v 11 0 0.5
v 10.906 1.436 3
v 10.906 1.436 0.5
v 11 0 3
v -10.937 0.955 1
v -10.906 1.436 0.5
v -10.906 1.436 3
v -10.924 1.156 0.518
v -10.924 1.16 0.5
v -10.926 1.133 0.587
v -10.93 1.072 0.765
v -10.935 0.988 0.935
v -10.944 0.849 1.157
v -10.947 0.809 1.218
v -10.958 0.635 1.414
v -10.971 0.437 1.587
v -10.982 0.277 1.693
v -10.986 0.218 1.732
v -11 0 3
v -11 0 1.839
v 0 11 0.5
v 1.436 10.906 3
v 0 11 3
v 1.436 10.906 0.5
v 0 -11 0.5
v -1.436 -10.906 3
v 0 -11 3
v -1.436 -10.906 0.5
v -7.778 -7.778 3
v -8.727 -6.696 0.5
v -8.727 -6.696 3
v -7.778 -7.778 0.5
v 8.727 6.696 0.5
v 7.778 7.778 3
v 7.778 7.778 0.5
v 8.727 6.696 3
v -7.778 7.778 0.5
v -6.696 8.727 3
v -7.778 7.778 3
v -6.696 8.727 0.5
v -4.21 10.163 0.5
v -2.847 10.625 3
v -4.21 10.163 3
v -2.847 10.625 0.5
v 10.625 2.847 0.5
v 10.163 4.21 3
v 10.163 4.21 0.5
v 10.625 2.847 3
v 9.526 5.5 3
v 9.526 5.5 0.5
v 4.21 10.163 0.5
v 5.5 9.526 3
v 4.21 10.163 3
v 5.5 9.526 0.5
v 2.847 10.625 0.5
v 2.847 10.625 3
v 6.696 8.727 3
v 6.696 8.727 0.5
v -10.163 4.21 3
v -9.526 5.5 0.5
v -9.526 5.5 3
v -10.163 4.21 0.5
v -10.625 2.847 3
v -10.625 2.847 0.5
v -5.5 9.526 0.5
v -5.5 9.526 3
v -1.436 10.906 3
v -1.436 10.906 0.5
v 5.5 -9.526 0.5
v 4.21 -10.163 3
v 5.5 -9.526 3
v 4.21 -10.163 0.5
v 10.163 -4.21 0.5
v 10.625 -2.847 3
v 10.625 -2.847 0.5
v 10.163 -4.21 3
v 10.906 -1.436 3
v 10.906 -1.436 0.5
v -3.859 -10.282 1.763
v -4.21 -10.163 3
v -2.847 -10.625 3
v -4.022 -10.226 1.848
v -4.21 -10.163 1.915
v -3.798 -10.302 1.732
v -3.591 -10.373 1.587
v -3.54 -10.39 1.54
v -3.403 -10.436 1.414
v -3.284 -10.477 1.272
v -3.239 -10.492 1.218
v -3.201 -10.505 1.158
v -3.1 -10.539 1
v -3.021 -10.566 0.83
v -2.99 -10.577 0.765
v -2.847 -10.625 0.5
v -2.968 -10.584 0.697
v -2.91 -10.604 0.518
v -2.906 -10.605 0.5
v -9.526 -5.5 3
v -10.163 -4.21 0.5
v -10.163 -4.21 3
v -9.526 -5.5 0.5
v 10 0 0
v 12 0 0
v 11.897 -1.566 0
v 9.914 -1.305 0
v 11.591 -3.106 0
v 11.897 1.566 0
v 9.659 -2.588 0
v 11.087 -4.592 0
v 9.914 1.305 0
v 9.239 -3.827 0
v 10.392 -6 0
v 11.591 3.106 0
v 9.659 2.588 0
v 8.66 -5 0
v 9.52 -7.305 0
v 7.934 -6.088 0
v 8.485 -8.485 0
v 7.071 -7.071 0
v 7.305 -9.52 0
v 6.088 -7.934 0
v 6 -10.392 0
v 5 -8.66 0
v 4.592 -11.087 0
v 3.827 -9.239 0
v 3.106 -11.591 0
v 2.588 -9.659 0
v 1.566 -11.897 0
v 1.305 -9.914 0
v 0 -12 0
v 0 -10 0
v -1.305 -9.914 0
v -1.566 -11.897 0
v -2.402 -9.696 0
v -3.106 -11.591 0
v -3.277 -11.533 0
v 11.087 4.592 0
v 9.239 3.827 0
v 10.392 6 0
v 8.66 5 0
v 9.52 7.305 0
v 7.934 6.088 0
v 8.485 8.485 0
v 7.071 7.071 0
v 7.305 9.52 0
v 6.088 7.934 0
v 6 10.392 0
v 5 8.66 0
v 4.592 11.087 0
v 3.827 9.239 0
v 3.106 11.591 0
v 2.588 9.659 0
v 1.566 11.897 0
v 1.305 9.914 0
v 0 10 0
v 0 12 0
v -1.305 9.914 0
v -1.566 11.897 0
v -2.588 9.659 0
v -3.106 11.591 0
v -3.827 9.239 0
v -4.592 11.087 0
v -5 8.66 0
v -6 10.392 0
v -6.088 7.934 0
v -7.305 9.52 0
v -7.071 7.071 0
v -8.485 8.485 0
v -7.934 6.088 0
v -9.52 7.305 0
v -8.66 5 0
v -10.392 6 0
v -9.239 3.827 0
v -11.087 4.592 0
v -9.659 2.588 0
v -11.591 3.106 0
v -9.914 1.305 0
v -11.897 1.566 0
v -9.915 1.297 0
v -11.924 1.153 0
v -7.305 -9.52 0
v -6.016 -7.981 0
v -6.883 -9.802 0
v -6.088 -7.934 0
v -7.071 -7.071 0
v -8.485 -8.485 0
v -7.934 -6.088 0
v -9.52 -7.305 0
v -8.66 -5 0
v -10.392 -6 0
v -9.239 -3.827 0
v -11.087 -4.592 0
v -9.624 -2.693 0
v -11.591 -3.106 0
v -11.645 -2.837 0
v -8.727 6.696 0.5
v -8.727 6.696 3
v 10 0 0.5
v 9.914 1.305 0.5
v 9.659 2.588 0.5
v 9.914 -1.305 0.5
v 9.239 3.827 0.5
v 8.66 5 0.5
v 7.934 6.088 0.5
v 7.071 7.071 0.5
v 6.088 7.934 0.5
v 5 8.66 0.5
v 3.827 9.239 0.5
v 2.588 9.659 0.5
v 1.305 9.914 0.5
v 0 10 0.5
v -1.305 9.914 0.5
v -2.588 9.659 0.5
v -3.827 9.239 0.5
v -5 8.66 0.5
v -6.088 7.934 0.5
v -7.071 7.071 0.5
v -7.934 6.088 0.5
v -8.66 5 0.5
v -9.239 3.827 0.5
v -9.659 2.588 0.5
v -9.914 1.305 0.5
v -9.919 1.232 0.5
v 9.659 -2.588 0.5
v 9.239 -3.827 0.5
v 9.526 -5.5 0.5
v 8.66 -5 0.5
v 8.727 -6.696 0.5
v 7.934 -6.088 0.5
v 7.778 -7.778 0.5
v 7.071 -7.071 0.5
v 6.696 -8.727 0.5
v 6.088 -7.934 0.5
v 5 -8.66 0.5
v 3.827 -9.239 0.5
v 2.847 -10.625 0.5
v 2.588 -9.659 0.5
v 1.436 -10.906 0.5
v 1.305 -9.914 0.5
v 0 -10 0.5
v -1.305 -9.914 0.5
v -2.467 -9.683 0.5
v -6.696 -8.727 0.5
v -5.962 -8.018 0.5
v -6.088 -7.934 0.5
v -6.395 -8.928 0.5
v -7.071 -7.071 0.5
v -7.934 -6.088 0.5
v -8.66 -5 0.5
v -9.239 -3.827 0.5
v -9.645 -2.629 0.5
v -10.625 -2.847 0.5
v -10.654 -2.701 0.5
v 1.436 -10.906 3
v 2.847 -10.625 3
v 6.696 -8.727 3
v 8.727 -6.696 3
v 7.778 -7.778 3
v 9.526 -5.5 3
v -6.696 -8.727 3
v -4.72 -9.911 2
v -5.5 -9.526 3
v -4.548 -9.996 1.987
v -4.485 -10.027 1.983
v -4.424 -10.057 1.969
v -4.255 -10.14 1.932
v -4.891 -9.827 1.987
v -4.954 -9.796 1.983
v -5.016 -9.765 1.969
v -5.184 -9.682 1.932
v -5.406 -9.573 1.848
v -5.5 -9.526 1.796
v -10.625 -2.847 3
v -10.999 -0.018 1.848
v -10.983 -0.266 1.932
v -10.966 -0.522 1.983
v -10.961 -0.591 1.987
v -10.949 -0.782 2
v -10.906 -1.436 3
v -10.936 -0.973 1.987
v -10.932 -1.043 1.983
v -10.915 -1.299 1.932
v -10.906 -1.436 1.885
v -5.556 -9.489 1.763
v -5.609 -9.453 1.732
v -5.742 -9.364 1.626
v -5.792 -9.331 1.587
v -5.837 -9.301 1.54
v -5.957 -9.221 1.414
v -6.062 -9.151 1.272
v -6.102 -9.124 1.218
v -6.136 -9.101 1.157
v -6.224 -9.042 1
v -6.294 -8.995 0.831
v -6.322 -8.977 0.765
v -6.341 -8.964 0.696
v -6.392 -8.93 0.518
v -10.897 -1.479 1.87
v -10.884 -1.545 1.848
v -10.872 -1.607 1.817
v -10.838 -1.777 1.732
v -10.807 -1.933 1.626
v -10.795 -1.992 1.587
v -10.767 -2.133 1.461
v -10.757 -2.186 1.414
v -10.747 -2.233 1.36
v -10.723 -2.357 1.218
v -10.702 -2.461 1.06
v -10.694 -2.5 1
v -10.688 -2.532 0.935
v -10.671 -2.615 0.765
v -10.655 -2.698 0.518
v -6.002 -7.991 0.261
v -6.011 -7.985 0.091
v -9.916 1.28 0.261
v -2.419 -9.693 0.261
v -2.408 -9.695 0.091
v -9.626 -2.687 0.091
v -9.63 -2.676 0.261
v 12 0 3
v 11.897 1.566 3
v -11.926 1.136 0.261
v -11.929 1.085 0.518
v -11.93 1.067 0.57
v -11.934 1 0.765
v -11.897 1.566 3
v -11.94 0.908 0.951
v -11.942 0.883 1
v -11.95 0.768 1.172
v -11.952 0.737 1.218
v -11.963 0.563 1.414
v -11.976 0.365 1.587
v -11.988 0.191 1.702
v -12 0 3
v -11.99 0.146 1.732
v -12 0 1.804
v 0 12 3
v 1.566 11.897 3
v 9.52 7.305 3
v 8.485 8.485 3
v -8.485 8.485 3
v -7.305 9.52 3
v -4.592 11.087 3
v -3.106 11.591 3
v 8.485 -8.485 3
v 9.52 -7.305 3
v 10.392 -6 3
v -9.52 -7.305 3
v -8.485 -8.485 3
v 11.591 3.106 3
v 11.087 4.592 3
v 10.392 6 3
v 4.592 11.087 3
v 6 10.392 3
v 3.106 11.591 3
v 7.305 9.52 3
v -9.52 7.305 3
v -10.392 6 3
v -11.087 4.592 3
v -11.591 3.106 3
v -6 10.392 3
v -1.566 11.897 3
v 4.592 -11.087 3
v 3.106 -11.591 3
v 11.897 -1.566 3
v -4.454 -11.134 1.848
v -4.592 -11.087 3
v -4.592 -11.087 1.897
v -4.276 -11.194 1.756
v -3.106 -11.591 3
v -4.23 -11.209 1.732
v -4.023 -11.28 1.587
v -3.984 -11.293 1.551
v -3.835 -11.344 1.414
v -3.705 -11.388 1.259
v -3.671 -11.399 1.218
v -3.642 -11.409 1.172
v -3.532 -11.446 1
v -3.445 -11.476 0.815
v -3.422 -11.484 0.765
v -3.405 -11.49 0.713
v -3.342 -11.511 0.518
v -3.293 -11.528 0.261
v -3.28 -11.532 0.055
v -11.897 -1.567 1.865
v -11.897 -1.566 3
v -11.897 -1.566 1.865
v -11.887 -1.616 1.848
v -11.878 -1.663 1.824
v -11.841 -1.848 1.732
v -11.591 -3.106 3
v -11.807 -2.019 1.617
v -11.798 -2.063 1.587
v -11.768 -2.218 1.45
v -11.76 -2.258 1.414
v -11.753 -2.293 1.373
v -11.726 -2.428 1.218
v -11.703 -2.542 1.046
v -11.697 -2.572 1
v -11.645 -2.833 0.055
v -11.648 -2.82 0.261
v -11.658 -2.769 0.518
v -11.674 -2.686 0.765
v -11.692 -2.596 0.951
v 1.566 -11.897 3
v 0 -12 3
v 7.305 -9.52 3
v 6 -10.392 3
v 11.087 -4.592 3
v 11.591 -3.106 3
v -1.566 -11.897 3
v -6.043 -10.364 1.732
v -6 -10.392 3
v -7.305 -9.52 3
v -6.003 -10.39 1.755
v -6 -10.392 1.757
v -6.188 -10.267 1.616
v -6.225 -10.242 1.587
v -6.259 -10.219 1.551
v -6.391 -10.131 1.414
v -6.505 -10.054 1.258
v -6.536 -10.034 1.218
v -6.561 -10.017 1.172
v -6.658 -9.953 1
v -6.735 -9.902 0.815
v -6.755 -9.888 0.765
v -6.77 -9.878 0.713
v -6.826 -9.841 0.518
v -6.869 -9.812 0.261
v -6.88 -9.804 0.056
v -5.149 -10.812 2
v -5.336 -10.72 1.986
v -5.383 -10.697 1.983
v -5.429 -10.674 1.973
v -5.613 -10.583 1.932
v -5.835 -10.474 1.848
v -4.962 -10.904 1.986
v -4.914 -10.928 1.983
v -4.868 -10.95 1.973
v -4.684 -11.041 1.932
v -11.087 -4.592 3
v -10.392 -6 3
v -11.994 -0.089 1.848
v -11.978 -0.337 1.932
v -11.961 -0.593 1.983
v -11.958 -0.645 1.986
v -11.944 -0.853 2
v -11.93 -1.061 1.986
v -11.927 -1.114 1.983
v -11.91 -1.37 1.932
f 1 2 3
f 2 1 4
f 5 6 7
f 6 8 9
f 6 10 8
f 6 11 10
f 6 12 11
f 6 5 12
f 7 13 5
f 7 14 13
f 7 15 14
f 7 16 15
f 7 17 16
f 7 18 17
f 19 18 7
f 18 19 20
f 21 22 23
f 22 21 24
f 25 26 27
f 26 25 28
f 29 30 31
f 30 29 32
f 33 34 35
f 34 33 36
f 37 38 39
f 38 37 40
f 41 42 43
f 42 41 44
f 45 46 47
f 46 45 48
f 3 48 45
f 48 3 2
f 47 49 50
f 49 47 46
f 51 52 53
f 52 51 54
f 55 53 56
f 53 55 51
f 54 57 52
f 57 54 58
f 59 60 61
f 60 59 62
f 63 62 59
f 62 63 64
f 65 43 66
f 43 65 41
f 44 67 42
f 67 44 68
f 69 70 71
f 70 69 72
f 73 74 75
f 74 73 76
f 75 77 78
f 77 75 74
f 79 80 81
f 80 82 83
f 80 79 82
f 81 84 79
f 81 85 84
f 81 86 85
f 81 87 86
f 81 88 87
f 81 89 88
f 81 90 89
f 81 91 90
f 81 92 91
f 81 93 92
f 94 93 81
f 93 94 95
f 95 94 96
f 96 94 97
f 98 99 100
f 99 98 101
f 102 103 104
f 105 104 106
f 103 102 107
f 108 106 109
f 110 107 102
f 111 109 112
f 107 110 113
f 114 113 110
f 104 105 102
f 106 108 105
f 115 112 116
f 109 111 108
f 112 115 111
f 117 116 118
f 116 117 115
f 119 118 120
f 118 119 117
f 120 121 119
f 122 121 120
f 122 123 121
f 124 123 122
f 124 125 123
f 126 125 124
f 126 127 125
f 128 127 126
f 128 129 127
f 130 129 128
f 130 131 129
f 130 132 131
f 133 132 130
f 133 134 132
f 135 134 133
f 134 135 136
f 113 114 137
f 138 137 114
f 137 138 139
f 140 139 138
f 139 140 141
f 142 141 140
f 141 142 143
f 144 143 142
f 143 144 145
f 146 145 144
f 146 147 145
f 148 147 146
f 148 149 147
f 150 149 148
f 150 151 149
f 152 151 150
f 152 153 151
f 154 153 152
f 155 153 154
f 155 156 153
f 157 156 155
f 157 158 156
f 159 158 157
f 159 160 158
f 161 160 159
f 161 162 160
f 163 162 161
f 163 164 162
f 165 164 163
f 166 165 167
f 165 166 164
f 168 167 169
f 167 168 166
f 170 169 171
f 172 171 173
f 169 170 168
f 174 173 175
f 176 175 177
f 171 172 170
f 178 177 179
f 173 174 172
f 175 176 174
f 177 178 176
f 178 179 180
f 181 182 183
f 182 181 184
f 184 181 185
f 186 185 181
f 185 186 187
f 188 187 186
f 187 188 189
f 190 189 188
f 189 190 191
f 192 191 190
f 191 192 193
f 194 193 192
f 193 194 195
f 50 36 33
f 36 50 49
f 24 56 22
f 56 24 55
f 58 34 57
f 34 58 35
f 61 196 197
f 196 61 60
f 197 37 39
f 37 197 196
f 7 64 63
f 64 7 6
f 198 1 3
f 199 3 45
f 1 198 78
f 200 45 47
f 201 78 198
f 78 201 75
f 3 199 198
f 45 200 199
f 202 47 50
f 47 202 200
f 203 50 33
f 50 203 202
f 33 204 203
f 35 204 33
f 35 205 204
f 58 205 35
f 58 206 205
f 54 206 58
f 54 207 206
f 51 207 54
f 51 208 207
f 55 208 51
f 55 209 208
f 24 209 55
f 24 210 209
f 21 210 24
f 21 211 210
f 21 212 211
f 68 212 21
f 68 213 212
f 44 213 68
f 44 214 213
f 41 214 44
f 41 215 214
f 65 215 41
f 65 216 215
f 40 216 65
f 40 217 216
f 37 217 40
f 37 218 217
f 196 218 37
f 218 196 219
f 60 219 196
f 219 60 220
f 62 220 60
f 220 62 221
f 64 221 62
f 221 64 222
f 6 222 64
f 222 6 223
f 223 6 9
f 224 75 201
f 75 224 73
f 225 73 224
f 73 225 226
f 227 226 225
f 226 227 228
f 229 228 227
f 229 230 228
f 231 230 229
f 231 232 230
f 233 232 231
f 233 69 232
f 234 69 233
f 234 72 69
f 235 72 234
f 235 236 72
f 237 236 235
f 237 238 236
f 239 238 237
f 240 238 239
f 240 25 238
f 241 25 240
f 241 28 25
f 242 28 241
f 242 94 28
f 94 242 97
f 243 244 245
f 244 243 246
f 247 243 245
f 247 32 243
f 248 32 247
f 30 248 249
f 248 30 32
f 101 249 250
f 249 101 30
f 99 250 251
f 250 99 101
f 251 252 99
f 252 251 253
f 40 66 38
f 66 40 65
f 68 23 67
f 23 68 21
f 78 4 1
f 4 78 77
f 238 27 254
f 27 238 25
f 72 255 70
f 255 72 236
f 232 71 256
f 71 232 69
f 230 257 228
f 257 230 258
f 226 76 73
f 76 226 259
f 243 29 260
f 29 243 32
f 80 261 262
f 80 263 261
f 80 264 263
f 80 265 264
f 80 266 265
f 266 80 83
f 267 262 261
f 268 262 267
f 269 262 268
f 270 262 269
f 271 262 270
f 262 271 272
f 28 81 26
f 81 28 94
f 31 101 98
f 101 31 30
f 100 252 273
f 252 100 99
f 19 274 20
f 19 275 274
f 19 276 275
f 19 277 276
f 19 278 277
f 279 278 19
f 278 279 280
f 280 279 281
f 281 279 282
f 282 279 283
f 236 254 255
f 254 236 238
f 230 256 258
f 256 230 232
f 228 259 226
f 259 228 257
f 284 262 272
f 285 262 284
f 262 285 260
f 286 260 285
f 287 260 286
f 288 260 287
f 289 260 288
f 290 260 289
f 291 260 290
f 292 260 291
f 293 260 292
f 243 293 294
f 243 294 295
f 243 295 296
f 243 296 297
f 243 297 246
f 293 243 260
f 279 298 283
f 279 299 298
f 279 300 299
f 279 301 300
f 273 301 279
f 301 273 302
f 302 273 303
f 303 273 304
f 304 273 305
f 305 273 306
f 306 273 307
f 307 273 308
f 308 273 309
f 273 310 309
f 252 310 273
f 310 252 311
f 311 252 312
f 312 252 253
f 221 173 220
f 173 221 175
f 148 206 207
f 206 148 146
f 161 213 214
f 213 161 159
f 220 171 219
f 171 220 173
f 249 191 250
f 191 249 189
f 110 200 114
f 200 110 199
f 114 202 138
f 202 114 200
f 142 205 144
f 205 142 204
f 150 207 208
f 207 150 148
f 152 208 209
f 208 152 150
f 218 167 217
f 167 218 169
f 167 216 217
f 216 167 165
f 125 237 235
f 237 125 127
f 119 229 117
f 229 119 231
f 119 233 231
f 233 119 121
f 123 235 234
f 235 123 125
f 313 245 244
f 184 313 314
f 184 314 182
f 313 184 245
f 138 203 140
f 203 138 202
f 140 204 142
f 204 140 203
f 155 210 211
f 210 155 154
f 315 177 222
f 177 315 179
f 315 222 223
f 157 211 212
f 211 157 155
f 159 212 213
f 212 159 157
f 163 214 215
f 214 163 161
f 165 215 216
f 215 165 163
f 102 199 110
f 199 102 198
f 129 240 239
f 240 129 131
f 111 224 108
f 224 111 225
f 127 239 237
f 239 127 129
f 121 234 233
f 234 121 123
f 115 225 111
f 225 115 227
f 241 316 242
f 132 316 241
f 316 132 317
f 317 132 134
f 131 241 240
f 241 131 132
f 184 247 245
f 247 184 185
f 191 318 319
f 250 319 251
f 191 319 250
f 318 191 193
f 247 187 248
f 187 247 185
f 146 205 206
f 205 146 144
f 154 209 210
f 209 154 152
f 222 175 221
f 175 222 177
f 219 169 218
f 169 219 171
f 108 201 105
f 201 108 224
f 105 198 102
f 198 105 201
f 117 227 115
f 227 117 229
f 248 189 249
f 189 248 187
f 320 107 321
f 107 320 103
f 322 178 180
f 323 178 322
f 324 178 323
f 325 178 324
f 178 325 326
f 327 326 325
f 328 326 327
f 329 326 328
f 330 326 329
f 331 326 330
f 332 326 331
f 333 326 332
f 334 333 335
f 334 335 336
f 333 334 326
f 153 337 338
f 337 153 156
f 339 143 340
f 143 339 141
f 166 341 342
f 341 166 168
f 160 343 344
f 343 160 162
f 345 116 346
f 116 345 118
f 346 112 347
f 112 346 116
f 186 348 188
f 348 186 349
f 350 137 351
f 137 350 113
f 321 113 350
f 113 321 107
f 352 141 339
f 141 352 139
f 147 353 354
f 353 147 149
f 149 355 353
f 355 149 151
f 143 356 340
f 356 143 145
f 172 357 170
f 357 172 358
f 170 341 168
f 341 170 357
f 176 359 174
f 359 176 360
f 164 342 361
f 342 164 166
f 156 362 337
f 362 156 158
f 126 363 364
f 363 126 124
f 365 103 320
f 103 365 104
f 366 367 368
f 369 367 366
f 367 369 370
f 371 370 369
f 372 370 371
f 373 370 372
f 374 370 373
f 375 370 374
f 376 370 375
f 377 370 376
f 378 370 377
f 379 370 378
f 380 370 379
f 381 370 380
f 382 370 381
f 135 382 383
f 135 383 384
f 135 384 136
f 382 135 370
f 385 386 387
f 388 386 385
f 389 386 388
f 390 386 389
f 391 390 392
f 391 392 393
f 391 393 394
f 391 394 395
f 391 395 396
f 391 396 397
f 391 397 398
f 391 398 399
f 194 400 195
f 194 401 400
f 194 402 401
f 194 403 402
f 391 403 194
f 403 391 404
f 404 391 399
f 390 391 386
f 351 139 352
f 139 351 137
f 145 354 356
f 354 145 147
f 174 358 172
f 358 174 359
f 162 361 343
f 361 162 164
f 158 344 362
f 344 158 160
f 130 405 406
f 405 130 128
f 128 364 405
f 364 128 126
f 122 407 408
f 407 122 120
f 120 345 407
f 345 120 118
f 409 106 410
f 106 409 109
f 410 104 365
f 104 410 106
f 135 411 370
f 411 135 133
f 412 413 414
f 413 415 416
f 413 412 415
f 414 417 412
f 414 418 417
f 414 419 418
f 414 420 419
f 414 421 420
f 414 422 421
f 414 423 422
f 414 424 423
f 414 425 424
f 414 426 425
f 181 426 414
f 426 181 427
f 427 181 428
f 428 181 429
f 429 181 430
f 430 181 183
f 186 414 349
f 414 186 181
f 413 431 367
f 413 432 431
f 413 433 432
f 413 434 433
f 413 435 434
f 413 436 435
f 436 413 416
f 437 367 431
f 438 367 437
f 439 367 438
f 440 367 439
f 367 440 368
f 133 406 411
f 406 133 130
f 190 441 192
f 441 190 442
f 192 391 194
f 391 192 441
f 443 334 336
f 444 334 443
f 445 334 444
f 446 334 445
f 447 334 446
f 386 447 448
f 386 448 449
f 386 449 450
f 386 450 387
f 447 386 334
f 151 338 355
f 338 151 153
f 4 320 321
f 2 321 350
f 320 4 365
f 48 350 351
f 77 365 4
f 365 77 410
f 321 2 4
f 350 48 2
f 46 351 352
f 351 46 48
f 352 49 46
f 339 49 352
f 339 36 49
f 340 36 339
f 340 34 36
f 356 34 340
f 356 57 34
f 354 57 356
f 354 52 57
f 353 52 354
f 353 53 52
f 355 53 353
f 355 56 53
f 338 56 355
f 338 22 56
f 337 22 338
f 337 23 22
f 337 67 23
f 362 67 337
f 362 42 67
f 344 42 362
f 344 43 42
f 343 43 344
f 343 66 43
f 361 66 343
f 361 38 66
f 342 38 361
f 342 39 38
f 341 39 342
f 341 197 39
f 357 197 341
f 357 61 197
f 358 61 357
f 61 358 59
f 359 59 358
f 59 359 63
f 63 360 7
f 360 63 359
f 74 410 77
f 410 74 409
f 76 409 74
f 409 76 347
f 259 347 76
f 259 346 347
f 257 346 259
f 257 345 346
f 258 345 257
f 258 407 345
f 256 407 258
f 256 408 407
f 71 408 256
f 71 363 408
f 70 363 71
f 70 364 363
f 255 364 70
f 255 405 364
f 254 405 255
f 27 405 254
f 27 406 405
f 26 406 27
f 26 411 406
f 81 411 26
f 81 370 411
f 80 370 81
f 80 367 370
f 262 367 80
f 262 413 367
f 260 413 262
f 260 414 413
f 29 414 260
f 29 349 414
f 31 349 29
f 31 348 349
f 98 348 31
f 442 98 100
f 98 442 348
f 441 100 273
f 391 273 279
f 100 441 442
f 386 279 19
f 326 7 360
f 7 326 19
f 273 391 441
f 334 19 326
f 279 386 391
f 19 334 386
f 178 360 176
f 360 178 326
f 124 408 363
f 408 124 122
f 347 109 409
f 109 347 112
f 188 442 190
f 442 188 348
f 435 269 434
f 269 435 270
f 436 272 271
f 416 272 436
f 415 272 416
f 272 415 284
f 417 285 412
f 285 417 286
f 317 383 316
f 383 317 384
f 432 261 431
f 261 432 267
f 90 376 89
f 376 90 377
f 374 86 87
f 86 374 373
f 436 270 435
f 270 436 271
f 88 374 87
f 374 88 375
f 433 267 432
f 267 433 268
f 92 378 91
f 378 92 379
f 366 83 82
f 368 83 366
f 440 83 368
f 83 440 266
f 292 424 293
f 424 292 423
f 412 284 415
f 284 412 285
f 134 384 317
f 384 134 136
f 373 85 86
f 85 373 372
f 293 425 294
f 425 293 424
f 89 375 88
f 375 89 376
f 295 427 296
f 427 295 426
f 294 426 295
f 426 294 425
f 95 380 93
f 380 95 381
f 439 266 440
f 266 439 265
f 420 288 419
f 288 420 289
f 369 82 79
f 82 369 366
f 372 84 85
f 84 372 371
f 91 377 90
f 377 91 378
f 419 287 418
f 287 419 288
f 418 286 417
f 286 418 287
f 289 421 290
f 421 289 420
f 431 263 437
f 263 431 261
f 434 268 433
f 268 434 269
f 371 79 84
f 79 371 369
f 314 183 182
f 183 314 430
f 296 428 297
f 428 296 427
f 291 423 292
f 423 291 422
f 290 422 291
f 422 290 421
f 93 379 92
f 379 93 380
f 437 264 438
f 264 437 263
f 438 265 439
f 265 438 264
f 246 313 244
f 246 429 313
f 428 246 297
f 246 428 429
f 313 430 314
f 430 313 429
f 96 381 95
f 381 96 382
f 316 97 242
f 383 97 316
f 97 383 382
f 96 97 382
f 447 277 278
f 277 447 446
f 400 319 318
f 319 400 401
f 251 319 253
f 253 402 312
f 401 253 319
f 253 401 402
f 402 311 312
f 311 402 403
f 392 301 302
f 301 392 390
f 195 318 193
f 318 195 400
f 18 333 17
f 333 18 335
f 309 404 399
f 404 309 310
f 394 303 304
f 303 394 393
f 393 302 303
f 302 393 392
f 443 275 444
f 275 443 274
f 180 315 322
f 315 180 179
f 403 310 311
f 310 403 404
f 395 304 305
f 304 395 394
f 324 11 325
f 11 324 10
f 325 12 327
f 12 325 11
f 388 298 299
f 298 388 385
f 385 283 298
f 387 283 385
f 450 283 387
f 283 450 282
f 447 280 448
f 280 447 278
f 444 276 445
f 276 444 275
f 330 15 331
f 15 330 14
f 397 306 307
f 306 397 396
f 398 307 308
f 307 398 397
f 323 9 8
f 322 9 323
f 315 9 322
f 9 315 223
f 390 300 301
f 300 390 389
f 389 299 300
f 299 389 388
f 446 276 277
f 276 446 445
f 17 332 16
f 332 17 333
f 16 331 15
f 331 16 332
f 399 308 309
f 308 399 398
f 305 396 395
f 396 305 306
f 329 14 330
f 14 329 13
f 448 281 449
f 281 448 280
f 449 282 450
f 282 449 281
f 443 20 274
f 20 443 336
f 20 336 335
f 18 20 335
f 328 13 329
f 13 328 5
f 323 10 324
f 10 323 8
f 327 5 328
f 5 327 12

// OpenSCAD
// file: ../build_environments.scad
// build_environments.scad: modules to build level sections
//

module pool(diameter=10.0, wall_height=2.0, step_width=3.0, connections=[])
{
    difference() {
        union() {
        difference() {
            cylinder(h=0.5,r1=diameter+step_width,r2=diameter+step_width,$fn=48);
            translate([0,0,-0.1])
                cylinder(h=0.7,r1=diameter,r2=diameter,$fn=48);
        }
        difference() {
            cylinder(h=wall_height,r1=diameter+step_width+1.0,r2=diameter+step_width+1.0,$fn=48);
            translate([0,0,-0.1])
                cylinder(h=wall_height+0.2,r1=diameter+step_width,r2=diameter+step_width,$fn=48);
        }
        }
    
        for (c = connections)
        {
            rotate([0,90,0]) {
                angle = atan2(c[1],c[0]);
                rotate([-angle,0,0]) {
                    cylinder(h=diameter+5.0,r1=c[2],r2=c[2],$fn=48);
                }
            }
        }
    }
}

module straight(length=10.0, width=2.0, dy1=0.0, dy2=0.0, dz=0.0)
{
    dims = [0, 0, 0, 0, 0, (dz/length)];
    matrix = [
        [ 1, dims[0], dims[1], 0 ],
        [ dims[2], 1, dims[4], 0 ],
        [ dims[5], dims[3], 1, 0 ],
        [ 0, 0, 0, 1 ]
    ];
    multmatrix(matrix)
    difference() {
        translate([dy1,0,0])
        union() {
            rotate([0,90,0]) {
                difference() {
                    cylinder(h=(length-dy1-dy2),r1=width+1.0,r2=width+1.0,$fn=24);
                    translate([0,0,-0.1])
                        cylinder(h=(length-dy1-dy2+0.2),r1=width,r2=width,$fn=24);
                }
                difference() {
                    cylinder(h=1.0,r1=width+2.0,r2=width+2.0,$fn=24);
                    translate([0,0,-0.1])
                        cylinder(h=1.2,r1=width,r2=width,$fn=24);
                }
                translate([0,0,(length-dy1-dy2)-1.0]) {
                    difference() {
                        cylinder(h=1.0,r1=width+2.0,r2=width+2.0,$fn=24);
                        translate([0,0,-0.1])
                            cylinder(h=1.2,r1=width,r2=width,$fn=24);
                    }
                }
            }
        }
        translate([0,0,-(2*width+4.0)/2])
            cube([3*length,3*length,2*width+4.0],center=true);
    }
}

module curve(p0=[0,0], center=[0,0], dir=1, angle=0.0, width=2.0)
{
    radius = sqrt((p0[0]-center[0])*(p0[0]-center[0]) + (p0[1]-center[1])*(p0[1]-center[1]));
    if (dir == 0) {
        difference() {
            rotate([0,0,-90])
            difference() {
                rotate_extrude(angle = angle, convexity = 10, $fn=32)
                    translate([radius, 0, 0])
                        circle(r = width+1.0,$fn=24);
                rotate([0,0,-1.0])
                    rotate_extrude(angle = angle+2.0, convexity = 10, $fn=32)
                        translate([radius, 0, 0])
                            circle(r = width,$fn=24);
            }
            translate([0,0,-(2*width+4.0)/2])
                cube([5*radius,5*radius,2*width+4.0],center=true);
        }
    }
    else {
        difference() {
            rotate([0,0,90])
            difference() {
                rotate_extrude(angle = -angle, convexity = 10, $fn=32)
                    translate([radius, 0, 0])
                        circle(r = width+1.0,$fn=24);
                rotate([0,0,1.0])
                    rotate_extrude(angle = -angle-2.0, convexity = 10, $fn=32)
                        translate([radius, 0, 0])
                            circle(r = width,$fn=24);
            }
            translate([0,0,-(2*width+4.0)/2])
                cube([5*radius,5*radius,2*width+4.0],center=true);
        }
    }

}

// test pool
//pool(diameter=12.0000, wall_height=3.0000, step_width=3.0000, connections=[[0.0000,-26.0000,2.0000], [23.6074,0.0000,2.0000]]);

// test straight, slope
//straight(length=26.0000, width=2.0000, dy1=11.8322, dy2=6.7082, dz=0.0000);
//straight(length=29.1549, width=12.0000, dy1=0.0000, dy2=0.0000, dz=-15.0000);

// test curve
//curve(p0=[23.6074, 0.0000], center=[23.6074, 5.0000], dir=0, angle=60.1011, width=2.0000);
//curve(p0=[33.6426, 12.4219], center=[37.9771, 9.9295], dir=1, angle=120.4627, width=2.0000);
// main file
use <../build_environments.scad>;
pool(diameter=10.0000, wall_height=3.0000, step_width=1.0000, connections=[[-10.0000,-21.0000,2.0000], [-28.0000,-2.0000,2.0000]]);
